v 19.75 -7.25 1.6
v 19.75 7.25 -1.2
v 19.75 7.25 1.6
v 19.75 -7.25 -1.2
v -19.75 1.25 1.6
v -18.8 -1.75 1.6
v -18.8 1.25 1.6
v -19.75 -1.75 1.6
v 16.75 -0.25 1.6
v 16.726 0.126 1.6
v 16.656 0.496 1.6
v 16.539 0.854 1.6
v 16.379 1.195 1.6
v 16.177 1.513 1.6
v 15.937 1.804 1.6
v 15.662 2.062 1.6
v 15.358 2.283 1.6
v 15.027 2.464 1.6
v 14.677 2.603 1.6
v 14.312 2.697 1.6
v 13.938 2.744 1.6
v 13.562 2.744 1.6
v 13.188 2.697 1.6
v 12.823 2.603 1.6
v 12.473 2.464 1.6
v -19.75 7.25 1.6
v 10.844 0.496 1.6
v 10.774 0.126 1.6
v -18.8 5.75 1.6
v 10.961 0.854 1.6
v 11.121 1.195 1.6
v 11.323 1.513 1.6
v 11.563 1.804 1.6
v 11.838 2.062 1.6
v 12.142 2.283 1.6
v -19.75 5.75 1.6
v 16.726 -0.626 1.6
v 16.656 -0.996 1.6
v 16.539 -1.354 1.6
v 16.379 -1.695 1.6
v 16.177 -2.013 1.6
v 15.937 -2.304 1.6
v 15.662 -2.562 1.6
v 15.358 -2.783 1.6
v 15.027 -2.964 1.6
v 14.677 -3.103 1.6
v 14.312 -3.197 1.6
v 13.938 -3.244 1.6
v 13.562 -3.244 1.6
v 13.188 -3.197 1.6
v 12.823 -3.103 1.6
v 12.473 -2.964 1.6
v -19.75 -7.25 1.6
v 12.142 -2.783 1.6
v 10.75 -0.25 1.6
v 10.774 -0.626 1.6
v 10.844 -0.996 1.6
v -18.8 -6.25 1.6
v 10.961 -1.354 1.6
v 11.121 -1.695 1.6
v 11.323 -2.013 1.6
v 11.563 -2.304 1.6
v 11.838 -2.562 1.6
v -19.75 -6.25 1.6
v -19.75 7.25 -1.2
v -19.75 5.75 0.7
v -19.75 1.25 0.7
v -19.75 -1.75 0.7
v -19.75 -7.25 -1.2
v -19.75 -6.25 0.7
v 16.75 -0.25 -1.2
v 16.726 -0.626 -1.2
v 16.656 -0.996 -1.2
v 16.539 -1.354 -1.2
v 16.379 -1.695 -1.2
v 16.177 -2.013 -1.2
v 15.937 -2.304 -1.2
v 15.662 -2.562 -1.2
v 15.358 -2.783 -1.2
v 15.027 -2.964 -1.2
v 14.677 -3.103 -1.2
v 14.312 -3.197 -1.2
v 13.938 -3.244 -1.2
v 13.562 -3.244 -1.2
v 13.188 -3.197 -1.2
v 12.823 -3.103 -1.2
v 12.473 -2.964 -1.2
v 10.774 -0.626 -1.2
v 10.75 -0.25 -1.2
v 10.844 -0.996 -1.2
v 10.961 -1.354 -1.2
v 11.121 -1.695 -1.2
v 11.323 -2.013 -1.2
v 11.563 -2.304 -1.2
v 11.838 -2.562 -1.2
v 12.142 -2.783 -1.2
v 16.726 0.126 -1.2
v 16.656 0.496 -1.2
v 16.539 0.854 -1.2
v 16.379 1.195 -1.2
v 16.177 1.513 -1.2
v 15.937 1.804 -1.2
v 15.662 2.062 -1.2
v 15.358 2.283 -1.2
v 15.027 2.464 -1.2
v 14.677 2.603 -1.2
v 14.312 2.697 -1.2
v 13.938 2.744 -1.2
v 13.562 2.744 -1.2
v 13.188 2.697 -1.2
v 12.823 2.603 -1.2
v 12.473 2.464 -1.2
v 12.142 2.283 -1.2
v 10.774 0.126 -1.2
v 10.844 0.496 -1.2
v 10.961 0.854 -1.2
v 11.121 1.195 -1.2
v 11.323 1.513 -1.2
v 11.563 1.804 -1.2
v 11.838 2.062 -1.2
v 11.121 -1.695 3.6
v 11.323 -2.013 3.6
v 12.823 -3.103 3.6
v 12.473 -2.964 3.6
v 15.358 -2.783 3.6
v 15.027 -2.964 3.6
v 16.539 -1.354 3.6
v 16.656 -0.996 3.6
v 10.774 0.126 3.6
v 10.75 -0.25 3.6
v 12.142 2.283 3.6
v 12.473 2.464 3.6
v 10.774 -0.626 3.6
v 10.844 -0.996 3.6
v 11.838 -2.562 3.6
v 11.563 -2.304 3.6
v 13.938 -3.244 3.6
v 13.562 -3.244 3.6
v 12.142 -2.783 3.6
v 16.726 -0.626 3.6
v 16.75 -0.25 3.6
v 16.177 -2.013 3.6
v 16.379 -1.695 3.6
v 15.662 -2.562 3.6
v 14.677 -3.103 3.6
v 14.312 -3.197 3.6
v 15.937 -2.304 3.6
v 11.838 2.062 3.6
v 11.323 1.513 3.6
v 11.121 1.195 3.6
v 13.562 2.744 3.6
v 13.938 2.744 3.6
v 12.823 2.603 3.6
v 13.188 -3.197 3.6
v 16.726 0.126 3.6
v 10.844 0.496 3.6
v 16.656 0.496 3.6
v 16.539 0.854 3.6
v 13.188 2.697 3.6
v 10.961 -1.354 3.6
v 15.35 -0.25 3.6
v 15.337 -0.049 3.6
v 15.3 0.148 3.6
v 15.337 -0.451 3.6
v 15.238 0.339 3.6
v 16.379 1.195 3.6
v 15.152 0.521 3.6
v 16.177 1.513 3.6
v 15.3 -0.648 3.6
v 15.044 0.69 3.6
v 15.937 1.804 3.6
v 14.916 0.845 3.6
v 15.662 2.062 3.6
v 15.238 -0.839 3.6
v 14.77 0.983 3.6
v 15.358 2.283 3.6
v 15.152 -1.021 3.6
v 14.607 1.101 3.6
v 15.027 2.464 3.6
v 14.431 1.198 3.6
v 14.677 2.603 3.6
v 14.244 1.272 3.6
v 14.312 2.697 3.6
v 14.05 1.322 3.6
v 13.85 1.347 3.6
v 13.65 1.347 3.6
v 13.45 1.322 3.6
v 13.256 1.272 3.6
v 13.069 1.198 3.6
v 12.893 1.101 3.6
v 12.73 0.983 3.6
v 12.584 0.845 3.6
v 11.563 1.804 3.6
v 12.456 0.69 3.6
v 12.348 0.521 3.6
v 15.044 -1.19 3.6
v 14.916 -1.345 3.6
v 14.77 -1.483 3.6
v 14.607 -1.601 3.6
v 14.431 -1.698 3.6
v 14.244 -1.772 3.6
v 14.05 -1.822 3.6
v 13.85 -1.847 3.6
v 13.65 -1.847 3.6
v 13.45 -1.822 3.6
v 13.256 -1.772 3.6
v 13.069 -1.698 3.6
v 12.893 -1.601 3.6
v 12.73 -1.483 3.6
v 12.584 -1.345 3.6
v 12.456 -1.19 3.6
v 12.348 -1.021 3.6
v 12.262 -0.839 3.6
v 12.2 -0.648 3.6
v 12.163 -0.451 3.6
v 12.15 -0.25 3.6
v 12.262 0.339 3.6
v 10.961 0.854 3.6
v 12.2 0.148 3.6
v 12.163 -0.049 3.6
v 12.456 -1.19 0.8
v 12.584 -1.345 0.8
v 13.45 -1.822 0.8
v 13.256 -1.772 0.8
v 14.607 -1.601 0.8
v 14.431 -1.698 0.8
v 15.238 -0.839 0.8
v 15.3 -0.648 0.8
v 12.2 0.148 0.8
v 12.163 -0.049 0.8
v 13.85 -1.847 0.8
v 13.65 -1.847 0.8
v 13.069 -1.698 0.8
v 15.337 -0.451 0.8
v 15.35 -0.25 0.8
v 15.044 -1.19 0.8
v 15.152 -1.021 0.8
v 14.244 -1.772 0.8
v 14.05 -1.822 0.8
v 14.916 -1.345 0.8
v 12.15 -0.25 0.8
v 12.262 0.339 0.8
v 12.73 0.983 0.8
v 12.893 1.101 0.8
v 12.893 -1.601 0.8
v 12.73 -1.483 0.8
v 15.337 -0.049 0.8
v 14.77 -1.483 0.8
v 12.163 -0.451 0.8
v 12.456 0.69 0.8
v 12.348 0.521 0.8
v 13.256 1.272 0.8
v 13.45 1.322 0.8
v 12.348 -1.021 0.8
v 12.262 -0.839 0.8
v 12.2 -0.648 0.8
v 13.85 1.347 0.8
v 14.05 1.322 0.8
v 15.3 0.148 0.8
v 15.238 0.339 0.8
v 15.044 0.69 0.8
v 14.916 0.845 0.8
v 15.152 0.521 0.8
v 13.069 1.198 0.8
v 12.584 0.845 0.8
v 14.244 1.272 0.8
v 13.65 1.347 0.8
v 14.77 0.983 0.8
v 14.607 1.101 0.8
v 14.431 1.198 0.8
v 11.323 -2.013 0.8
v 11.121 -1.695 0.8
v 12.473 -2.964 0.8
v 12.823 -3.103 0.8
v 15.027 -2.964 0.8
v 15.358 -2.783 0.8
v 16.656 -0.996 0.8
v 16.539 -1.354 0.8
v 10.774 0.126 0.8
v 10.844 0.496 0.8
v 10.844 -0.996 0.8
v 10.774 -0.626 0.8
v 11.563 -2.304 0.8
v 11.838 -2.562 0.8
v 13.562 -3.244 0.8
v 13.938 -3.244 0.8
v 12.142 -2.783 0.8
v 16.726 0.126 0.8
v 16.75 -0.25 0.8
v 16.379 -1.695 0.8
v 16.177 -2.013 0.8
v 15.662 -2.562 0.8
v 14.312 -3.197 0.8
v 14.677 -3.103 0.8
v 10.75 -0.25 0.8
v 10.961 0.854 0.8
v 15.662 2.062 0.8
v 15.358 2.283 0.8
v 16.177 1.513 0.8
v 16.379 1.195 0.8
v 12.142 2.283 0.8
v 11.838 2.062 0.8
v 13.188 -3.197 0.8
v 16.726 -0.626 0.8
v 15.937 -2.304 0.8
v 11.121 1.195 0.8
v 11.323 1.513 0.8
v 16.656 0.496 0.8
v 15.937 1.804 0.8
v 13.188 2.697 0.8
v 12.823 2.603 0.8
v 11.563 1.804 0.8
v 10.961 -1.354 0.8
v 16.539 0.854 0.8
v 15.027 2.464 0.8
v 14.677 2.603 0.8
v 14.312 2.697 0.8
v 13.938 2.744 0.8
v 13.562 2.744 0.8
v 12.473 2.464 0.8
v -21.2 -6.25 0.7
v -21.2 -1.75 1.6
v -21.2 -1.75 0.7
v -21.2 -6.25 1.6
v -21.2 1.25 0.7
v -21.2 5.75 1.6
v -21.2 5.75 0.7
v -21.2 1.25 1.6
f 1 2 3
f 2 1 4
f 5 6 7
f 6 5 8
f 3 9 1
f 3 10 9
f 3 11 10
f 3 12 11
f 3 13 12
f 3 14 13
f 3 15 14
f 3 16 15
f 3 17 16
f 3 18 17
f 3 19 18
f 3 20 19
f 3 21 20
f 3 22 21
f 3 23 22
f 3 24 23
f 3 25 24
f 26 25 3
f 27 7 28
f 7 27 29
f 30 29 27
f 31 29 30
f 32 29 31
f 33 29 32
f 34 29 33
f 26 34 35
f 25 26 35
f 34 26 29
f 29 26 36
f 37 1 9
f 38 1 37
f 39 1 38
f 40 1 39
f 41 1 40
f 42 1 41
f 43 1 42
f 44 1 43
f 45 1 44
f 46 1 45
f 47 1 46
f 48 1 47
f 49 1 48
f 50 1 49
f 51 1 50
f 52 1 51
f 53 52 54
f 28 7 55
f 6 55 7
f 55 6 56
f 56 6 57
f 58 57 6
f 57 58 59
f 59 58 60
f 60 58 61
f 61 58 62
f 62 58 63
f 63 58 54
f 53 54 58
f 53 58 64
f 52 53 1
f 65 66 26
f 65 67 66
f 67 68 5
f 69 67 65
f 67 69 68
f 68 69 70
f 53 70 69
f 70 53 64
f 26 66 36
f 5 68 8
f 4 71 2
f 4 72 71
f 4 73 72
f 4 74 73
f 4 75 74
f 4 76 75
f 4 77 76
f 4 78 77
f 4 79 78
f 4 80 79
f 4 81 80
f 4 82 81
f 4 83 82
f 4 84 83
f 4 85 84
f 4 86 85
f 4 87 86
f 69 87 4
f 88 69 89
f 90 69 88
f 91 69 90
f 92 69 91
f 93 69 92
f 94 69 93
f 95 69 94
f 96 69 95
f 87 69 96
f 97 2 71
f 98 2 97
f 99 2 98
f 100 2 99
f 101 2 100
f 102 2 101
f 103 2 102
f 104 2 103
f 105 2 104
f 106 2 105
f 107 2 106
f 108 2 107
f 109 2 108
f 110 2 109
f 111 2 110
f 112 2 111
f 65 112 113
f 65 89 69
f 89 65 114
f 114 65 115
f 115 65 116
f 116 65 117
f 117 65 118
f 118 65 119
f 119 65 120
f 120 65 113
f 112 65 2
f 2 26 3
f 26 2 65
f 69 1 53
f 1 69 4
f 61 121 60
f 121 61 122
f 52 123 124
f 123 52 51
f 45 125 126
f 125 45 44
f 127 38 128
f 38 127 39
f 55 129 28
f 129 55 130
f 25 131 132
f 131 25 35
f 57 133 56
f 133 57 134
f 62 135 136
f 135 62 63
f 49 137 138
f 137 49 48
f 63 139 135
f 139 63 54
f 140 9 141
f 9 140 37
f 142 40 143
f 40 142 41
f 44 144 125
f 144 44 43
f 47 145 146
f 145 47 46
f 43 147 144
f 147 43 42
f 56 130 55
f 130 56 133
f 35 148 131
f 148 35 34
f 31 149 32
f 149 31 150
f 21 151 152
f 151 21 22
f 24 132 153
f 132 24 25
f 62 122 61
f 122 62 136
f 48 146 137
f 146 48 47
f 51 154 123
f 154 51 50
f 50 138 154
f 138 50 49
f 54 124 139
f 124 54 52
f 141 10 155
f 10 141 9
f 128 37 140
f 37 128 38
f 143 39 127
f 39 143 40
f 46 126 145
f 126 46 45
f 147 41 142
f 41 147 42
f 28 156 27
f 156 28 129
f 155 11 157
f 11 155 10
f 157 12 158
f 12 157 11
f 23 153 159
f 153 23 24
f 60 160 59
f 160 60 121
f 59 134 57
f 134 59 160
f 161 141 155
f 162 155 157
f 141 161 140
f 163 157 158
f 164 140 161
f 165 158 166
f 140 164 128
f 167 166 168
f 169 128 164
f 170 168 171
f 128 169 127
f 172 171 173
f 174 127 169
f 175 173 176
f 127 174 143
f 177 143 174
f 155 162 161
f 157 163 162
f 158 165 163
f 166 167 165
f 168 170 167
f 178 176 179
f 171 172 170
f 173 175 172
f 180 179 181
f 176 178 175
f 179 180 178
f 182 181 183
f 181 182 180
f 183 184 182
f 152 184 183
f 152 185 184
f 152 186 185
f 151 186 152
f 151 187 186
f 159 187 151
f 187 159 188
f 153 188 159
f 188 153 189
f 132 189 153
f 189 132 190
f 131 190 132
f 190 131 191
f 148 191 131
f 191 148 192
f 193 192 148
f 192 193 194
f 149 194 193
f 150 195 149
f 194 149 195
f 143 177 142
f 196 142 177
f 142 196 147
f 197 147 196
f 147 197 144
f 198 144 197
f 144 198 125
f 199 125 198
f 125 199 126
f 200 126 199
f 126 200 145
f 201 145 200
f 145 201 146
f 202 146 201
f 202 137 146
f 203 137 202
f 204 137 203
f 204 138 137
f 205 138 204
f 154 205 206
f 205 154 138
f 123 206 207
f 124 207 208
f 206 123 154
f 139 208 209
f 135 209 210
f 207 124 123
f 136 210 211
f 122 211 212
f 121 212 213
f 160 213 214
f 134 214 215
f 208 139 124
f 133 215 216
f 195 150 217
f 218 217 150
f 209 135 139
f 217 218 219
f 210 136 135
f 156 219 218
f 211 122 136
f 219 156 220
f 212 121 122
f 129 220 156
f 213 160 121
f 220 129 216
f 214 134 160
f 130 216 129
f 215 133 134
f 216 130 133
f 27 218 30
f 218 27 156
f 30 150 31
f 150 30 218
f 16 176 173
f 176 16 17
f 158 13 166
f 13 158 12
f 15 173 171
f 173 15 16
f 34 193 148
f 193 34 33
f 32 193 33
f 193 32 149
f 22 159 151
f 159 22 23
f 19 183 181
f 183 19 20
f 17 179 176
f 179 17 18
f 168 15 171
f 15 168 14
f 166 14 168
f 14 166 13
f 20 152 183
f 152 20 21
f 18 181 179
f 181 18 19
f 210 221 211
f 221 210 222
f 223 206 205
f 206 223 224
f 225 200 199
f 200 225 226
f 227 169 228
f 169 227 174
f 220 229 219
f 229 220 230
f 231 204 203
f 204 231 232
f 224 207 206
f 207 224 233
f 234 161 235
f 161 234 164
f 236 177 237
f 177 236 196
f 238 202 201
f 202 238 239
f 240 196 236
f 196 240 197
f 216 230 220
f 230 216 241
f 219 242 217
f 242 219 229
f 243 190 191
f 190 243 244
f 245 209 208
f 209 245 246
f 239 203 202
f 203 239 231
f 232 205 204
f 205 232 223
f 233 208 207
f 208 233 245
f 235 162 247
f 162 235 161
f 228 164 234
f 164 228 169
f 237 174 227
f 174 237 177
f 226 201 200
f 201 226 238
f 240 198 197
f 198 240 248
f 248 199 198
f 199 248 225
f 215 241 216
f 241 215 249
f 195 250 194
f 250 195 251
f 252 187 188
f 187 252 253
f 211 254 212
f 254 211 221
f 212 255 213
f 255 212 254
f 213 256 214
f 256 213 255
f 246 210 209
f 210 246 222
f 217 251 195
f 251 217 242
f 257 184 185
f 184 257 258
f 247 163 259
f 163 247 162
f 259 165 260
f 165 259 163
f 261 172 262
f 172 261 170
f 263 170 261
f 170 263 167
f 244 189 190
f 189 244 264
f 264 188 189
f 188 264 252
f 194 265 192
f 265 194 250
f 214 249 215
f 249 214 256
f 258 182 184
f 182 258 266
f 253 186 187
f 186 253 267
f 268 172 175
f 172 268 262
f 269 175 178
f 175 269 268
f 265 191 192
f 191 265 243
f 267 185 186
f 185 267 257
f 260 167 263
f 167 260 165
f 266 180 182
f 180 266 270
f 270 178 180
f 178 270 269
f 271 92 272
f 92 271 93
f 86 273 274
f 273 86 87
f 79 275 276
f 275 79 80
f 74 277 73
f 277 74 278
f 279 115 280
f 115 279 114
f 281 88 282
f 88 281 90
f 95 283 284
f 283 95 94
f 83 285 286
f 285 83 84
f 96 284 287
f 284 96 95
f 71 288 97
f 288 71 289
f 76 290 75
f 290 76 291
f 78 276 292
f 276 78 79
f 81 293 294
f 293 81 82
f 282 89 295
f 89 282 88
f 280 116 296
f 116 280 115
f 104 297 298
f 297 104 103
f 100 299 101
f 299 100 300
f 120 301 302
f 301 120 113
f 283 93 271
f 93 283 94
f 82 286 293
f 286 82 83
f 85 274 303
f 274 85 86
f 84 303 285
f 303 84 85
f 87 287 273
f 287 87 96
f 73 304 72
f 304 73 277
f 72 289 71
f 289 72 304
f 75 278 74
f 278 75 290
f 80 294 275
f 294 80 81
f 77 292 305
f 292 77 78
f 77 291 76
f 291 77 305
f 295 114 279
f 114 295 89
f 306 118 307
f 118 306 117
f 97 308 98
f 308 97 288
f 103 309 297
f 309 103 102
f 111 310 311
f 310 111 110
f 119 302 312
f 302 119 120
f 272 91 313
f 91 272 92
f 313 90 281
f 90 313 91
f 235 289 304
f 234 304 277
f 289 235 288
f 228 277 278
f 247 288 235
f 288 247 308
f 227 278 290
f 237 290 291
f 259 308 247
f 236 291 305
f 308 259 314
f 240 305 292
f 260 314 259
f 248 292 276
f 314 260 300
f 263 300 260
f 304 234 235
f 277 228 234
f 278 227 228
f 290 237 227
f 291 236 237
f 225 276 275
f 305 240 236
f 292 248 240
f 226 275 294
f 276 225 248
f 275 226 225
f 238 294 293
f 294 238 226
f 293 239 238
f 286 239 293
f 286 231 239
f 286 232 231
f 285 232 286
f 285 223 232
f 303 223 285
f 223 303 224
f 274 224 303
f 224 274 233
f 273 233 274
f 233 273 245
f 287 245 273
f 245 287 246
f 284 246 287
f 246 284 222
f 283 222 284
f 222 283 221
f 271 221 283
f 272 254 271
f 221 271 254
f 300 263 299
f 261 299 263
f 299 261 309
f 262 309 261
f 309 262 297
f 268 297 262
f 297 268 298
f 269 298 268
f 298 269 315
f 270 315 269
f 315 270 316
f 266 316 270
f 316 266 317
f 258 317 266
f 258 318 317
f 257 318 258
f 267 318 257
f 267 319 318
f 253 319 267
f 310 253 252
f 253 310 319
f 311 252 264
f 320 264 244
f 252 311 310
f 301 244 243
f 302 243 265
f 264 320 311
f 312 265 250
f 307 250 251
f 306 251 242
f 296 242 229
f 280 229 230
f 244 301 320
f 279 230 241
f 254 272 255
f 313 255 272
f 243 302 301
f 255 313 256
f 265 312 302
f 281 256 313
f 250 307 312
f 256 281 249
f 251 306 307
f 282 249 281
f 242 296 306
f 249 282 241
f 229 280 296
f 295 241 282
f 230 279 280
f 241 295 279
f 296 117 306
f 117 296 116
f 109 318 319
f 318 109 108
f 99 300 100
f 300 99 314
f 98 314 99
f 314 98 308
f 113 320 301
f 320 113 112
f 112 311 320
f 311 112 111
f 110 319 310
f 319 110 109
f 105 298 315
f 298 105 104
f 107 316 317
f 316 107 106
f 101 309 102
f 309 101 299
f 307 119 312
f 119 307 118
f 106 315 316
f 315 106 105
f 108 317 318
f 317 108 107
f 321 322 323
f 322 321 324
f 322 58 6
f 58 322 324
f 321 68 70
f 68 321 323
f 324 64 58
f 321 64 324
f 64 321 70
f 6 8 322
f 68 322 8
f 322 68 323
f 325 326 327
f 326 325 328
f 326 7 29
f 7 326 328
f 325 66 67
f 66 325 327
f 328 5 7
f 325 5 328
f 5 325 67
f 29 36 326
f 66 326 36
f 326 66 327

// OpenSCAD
$fn  = 50;

width = 40;
height = 15;

// lid
lidThickness = 2.8;
pinLength = 2.4;
pinWidth = 5;
pinThickness = lidThickness / 2;
boxToLidSpacing = 0.5;
lidReinforcementDepth = 2;

screwHoleHeadDiameter = 6;
screwHoleHeadDepth = 2;
screwHoleDiameter = 3.2;
screwHoleDistance = 6;

boxOverlap = 10;
boxThickness = 1.2;
boxDepth = 10;
boxKragen = 1.6;
boxFloorThickness = 3;

screwPoleDiameter = 6;

woodWidth = 4;

clipThickness = 0.6;
clipWidth = 4;
clipHeight = 5;
clipNoseHeight = 2;
clipNoseThickness = 1;
clipRadius = 1;

clipToWoodThruSpacing = 0.25;

lid();
//box();

module solidBox() {
    
    // kragen
    translate([0,0,-boxThickness/2]) cube([width + boxOverlap, height + boxOverlap, boxThickness], true);
 
    // durchführung
    translate([0, 0, (woodWidth)/2 - clipToWoodThruSpacing/2]) cube([width + boxThickness * 2, height + boxThickness * 2, woodWidth - clipToWoodThruSpacing], true);
 
    // rest
    translate([0, 0, (boxDepth-woodWidth-clipToWoodThruSpacing)/2 + woodWidth]) cube([width + (boxThickness - boxKragen) * 2, height + (boxThickness - boxKragen) * 2, boxDepth - woodWidth + clipToWoodThruSpacing], true);
    //snapClips();
}

module snapClips() {

    for(i = [-width/4,width/4])
    translate([i,0,0]) {
        translate([0, height/2 + boxThickness - boxKragen - clipThickness, woodWidth]) snapClip();
        rotate([180,180,0]) translate([0, height/2 + boxThickness - boxKragen - clipThickness, woodWidth]) snapClip();
    }

    translate([width/2 + boxThickness - boxKragen - clipThickness, 0, woodWidth]) rotate([0,0,-90]) snapClip();
    translate([-(width/2 + boxThickness - boxKragen - clipThickness), 0, woodWidth]) rotate([0,0,90]) snapClip();
}


module hollowBox() {      
   difference() { 
      solidBox();
             
      // oberer teil
      translate([-width/2,-height/2,-boxThickness]) cube([width, height, lidThickness]);    
      
      // unterer teil
      translate([0,0,boxDepth/2 - (boxFloorThickness-boxThickness)]) cube([width - boxKragen * 2, height - boxKragen * 2, boxDepth - boxThickness], true);    
       
       // pin slots
       pins();  
        
       // sd card slot
       translate([-4,0,boxDepth-boxFloorThickness/2]) cube([25,3,boxFloorThickness], true); 
   }   
   
}

module hollowBoxWithScrewPost() {
    difference() {
        hollowBox();
        translate([width/2-screwHoleDistance,0, lidThickness - boxThickness]) {
            cylinder(boxDepth-lidThickness, 2, 2);           
        }
    }

    translate([width/2-screwHoleDistance,0, lidThickness - boxThickness]) {
        difference() {
            screwPost();
            cylinder(boxDepth-lidThickness, 2, 2);           
        }    
   }
}

module box() {
    
    difference() {
        hollowBoxWithScrewPost();
        
        // M3 nut
        translate([width/2-screwHoleDistance,0,boxDepth]) 
        linear_extrude(height = 4, center = true) polygon([
            [3.17543,0],
            [1.58771,-2.75],
            [-1.58771,-2.75],
            [-3.17543,0],
            [-1.58771,2.75],
            [1.58771,2.75]
        ]);
        
        // notch for opening lid
        translate([width/2 - 0.5,-5,-2.2]) rotate([60,0,90]) cube([10,3.4,2]);      
    }    
}


module snapClip() {
       
    clipInnerRadius = clipRadius - clipThickness;
    
    translate([-clipWidth / 2, 0, 0]) {
    
        cube([clipWidth, clipThickness, clipHeight]);
        translate([0,clipRadius,clipHeight]) rotate([0,90,0]) 
        difference() {
            cylinder(clipWidth, clipRadius, clipRadius);
            cylinder(clipWidth, clipInnerRadius, clipInnerRadius);
            translate([0, -clipInnerRadius,0]) cube([clipInnerRadius * 3,clipInnerRadius * 2, clipWidth]);
        }
        translate([0,clipRadius*2 - clipThickness,0]) cube([clipWidth, clipThickness, clipHeight]);
        
        translate([clipWidth,clipRadius*2,0]) rotate([0,-90,0]) linear_extrude(height = clipWidth) polygon([
            [0, 0],
            [0, clipNoseThickness],
            [clipNoseHeight, 0]        
        ]);    
    }
}

module screwPost() {
    translate([0,0,lidReinforcementDepth]) cylinder(boxDepth-lidThickness-lidReinforcementDepth, screwPoleDiameter/2, screwPoleDiameter/2);
    translate([0,0,6.2]) cube([9,13,0], true);
}

module lidWithReinforcement() {
    translate([0,0,0]) {
        cube([width - boxToLidSpacing, height - boxToLidSpacing, lidThickness]);
        translate([screwHoleDistance, height/2, lidThickness]) cylinder(lidReinforcementDepth, screwPoleDiameter/2, screwPoleDiameter/2);
    }
}

module lid() {
    rotate([0,0,180]) translate([-width/2+boxToLidSpacing/2,-height/2+boxToLidSpacing/2,-boxThickness]) {
        difference() {
            lidWithReinforcement();
            translate([screwHoleDistance, height/2, 0]) cylinder(lidThickness + lidReinforcementDepth, screwHoleDiameter/2, screwHoleDiameter/2);
            translate([screwHoleDistance, height/2, 0]) cylinder(screwHoleHeadDepth, screwHoleHeadDiameter/2, screwHoleHeadDiameter/2);
       }
    }
    translate([0,0,0]) pins(boxToLidSpacing);
 }
 
module pins(spacing = 0) {
    for(i = [-1,1]) 
        translate([(-pinLength-width)/2 , - pinWidth/2 + i*height/4, lidThickness/2 - boxThickness + spacing]) {
            cube([pinLength, pinWidth - spacing, pinThickness - spacing]);
        }
}
